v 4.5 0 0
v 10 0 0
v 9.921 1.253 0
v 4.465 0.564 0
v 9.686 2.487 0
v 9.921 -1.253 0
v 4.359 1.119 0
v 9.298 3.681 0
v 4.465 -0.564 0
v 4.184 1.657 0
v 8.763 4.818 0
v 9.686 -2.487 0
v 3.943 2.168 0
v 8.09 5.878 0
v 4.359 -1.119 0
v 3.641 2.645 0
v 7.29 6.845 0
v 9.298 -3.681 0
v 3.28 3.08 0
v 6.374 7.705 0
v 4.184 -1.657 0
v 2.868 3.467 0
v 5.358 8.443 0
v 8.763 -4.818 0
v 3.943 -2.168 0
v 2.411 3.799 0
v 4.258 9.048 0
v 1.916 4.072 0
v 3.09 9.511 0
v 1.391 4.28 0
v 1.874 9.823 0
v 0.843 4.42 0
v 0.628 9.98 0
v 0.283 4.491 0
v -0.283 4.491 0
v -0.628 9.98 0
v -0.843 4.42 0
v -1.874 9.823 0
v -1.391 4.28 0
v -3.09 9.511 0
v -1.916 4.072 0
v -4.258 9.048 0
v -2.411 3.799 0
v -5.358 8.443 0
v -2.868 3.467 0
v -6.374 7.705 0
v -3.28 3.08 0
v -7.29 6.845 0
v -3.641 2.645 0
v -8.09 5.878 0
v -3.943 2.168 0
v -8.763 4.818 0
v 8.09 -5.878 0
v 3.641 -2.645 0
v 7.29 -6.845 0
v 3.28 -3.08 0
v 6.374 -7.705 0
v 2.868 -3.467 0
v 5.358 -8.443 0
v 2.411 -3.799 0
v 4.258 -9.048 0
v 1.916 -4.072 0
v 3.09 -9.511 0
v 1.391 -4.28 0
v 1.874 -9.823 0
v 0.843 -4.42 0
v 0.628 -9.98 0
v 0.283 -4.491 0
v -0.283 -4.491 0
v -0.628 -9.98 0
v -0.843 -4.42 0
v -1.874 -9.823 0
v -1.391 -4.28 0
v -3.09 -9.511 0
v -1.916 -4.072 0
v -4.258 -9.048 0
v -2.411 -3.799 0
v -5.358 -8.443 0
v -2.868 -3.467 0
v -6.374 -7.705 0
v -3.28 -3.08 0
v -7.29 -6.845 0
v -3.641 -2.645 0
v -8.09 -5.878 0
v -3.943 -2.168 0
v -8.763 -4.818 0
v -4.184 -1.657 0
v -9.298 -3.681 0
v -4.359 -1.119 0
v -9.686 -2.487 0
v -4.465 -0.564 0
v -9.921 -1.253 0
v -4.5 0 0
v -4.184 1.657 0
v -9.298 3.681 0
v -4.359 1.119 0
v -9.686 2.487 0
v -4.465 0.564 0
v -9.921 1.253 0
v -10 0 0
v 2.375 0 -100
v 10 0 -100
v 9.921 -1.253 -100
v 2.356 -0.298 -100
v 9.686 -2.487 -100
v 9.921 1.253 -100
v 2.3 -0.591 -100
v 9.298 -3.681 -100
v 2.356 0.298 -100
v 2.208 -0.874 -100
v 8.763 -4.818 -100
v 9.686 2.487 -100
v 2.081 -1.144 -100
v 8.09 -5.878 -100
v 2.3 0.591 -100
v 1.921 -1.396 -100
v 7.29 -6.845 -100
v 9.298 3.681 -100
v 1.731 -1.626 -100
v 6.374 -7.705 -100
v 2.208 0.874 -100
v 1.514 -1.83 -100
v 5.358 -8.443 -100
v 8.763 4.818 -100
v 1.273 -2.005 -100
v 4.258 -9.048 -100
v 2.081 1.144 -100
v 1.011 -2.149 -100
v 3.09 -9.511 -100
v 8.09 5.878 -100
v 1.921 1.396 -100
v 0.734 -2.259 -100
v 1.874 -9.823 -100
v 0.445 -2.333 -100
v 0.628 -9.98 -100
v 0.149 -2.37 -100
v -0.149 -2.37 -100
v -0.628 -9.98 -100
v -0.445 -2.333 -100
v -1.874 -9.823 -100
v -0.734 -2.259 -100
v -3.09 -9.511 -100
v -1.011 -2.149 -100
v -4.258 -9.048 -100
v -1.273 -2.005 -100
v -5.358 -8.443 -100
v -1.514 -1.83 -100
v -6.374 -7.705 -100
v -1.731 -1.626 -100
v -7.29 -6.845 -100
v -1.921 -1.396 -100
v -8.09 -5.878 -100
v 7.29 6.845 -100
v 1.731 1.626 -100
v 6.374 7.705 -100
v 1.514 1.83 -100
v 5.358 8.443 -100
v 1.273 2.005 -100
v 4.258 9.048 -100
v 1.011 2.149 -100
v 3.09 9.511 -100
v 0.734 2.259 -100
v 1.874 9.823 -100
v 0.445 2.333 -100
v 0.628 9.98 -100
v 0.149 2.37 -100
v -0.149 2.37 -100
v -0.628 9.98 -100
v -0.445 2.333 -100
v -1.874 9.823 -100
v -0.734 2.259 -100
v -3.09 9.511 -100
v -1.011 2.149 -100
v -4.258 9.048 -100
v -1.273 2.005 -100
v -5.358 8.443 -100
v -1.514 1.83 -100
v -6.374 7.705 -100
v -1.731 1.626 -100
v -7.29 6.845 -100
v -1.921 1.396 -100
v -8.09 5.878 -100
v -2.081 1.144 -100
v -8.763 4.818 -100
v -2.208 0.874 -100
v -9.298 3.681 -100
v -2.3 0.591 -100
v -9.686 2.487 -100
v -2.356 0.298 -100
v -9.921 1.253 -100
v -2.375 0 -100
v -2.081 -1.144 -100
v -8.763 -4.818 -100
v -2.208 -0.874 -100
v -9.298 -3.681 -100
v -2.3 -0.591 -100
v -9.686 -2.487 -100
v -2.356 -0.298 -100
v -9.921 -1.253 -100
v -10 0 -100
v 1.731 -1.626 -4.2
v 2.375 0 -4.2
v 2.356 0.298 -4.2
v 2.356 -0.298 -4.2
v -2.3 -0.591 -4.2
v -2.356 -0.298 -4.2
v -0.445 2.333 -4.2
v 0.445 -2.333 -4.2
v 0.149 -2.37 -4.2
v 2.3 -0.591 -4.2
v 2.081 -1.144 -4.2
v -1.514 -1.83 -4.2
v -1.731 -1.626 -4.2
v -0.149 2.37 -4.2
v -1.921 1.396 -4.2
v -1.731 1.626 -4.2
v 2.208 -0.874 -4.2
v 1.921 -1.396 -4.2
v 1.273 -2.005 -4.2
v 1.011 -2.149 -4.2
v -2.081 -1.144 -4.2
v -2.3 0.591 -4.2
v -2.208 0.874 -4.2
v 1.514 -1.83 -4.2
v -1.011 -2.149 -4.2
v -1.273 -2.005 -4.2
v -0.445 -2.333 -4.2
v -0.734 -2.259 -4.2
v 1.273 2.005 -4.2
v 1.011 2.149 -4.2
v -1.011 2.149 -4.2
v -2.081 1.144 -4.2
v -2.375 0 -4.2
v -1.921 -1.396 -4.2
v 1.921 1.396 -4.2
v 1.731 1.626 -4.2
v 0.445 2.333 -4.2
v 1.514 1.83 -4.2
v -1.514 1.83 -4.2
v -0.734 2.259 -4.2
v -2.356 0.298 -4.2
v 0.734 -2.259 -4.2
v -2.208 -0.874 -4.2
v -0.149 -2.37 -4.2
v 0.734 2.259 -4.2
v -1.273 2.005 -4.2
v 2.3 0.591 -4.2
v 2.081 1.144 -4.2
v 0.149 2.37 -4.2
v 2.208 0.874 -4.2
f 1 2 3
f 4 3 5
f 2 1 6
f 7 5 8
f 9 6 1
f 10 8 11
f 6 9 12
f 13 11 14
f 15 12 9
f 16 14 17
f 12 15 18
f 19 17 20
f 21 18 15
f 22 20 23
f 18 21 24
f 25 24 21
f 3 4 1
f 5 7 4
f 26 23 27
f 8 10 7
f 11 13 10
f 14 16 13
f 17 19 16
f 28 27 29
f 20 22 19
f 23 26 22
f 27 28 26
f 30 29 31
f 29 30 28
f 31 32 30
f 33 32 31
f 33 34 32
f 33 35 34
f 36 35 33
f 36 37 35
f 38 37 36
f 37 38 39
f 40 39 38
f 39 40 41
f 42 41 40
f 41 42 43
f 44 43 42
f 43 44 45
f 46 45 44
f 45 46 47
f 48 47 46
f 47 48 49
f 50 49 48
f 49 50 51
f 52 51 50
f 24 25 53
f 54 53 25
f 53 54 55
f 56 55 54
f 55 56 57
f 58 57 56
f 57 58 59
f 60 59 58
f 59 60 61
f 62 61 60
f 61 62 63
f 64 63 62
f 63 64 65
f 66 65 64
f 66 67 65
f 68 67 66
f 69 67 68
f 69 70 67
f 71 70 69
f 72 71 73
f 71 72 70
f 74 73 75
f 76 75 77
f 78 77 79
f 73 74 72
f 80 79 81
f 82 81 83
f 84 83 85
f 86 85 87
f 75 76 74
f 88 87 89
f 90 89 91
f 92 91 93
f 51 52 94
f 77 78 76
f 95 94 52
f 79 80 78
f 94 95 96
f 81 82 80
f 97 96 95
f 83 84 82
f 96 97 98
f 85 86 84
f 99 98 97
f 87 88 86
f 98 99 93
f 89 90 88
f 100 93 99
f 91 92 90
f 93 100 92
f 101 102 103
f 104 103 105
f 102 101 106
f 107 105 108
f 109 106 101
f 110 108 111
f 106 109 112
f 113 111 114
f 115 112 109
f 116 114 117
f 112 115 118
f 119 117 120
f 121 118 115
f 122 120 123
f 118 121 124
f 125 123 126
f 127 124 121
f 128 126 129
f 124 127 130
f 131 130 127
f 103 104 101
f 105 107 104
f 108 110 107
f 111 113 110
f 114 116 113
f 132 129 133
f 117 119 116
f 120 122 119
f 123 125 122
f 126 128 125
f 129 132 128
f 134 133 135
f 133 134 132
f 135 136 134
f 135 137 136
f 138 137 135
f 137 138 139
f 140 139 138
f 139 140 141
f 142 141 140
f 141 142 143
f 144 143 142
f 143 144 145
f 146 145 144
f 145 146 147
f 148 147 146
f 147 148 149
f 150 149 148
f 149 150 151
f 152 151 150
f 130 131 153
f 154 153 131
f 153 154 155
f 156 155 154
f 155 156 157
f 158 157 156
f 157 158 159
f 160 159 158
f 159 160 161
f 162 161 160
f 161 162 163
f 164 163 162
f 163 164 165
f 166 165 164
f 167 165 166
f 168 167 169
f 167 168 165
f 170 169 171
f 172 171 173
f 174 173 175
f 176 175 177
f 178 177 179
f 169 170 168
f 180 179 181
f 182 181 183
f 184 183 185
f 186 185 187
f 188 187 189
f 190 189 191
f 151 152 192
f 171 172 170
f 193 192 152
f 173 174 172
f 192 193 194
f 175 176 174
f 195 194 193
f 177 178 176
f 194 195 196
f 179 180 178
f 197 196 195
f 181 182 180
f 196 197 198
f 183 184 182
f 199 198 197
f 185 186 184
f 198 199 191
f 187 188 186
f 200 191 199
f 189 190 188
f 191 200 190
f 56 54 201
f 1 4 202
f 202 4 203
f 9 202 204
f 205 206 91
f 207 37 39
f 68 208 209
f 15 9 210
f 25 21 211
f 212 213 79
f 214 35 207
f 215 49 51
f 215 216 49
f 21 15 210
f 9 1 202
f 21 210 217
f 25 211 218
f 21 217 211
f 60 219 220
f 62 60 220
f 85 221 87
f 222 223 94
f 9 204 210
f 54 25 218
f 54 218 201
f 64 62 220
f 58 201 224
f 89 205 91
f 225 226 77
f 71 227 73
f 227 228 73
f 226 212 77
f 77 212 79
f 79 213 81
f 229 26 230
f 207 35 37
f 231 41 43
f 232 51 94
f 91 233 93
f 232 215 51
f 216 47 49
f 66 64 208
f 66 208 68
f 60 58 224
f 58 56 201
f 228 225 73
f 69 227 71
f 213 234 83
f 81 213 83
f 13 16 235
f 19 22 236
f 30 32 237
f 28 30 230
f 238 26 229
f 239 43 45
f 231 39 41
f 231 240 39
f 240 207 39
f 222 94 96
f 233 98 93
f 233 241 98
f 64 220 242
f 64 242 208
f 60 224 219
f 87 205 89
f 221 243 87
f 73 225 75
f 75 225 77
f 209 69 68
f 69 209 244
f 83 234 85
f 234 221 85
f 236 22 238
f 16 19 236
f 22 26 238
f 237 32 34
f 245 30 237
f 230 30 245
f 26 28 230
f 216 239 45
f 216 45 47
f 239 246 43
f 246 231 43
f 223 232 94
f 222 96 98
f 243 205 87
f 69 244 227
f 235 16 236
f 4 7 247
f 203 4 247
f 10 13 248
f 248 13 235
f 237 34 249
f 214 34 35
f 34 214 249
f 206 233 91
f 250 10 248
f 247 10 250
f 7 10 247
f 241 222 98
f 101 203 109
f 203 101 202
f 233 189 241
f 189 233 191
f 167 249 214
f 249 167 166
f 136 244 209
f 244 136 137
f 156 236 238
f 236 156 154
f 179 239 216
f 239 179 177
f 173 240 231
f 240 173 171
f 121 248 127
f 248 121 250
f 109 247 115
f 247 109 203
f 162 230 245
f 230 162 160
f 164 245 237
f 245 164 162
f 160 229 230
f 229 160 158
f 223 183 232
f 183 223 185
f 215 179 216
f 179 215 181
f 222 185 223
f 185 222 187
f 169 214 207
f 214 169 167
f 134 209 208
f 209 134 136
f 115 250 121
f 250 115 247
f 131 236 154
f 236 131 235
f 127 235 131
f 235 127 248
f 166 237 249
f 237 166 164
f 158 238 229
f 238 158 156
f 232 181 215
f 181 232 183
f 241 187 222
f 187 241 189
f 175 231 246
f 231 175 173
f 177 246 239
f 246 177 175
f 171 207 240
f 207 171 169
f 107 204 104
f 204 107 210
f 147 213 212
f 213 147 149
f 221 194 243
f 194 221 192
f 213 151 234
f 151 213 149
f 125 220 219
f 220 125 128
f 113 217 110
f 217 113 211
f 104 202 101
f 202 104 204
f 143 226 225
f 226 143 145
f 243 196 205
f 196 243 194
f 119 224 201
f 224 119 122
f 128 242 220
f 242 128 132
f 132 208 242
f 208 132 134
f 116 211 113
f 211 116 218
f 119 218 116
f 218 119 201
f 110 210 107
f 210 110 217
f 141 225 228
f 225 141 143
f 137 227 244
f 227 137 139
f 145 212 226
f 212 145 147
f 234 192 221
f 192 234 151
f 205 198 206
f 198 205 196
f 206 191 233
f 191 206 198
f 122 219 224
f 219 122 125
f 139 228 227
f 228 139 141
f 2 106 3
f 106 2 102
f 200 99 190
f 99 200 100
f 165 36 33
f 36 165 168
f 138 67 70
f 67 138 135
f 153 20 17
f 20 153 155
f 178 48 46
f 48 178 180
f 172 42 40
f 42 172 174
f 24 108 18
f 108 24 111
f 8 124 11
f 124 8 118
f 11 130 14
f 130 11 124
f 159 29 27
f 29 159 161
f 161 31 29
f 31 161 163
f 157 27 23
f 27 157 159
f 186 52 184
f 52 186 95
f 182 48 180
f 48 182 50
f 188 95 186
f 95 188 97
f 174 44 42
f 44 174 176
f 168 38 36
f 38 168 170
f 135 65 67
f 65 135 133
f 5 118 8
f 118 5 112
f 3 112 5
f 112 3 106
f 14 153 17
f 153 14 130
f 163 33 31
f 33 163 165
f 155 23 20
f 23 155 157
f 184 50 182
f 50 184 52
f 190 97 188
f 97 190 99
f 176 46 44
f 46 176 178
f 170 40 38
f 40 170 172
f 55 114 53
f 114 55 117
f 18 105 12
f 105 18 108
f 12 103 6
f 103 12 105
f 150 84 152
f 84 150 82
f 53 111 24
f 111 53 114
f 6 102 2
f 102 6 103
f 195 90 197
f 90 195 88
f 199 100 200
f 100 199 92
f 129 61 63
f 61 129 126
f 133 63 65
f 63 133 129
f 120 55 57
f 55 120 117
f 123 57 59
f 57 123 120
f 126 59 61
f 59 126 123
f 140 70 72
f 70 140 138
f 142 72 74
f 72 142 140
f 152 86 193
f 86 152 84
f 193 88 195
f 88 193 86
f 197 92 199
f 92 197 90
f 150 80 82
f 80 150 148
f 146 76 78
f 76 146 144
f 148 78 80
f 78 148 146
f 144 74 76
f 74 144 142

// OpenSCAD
$fn = 50;


difference() {
	union() {
		translate(v = [0, 0, -100.0000000000]) {
			cylinder(h = 100, r = 10.0000000000);
		}
		cylinder(h = 0, r = 19.0000000000);
	}
	union() {
		translate(v = [0, 0, 0]) {
			rotate(a = [0, 0, 0]) {
				difference() {
					union() {
						#translate(v = [0, 0, -100.0000000000]) {
							cylinder(h = 100, r = 2.2500000000);
						}
						#translate(v = [0, 0, -4.2000000000]) {
							cylinder(h = 4.2000000000, r = 10.0000000000, r1 = 2.3750000000, r2 = 4.5000000000);
						}
						#translate(v = [0, 0, -100.0000000000]) {
							cylinder(h = 100, r = 2.3750000000);
						}
						#translate(v = [0, 0, -100.0000000000]) {
							cylinder(h = 100, r = 2.2500000000);
						}
					}
					union();
				}
			}
		}
	}
}
